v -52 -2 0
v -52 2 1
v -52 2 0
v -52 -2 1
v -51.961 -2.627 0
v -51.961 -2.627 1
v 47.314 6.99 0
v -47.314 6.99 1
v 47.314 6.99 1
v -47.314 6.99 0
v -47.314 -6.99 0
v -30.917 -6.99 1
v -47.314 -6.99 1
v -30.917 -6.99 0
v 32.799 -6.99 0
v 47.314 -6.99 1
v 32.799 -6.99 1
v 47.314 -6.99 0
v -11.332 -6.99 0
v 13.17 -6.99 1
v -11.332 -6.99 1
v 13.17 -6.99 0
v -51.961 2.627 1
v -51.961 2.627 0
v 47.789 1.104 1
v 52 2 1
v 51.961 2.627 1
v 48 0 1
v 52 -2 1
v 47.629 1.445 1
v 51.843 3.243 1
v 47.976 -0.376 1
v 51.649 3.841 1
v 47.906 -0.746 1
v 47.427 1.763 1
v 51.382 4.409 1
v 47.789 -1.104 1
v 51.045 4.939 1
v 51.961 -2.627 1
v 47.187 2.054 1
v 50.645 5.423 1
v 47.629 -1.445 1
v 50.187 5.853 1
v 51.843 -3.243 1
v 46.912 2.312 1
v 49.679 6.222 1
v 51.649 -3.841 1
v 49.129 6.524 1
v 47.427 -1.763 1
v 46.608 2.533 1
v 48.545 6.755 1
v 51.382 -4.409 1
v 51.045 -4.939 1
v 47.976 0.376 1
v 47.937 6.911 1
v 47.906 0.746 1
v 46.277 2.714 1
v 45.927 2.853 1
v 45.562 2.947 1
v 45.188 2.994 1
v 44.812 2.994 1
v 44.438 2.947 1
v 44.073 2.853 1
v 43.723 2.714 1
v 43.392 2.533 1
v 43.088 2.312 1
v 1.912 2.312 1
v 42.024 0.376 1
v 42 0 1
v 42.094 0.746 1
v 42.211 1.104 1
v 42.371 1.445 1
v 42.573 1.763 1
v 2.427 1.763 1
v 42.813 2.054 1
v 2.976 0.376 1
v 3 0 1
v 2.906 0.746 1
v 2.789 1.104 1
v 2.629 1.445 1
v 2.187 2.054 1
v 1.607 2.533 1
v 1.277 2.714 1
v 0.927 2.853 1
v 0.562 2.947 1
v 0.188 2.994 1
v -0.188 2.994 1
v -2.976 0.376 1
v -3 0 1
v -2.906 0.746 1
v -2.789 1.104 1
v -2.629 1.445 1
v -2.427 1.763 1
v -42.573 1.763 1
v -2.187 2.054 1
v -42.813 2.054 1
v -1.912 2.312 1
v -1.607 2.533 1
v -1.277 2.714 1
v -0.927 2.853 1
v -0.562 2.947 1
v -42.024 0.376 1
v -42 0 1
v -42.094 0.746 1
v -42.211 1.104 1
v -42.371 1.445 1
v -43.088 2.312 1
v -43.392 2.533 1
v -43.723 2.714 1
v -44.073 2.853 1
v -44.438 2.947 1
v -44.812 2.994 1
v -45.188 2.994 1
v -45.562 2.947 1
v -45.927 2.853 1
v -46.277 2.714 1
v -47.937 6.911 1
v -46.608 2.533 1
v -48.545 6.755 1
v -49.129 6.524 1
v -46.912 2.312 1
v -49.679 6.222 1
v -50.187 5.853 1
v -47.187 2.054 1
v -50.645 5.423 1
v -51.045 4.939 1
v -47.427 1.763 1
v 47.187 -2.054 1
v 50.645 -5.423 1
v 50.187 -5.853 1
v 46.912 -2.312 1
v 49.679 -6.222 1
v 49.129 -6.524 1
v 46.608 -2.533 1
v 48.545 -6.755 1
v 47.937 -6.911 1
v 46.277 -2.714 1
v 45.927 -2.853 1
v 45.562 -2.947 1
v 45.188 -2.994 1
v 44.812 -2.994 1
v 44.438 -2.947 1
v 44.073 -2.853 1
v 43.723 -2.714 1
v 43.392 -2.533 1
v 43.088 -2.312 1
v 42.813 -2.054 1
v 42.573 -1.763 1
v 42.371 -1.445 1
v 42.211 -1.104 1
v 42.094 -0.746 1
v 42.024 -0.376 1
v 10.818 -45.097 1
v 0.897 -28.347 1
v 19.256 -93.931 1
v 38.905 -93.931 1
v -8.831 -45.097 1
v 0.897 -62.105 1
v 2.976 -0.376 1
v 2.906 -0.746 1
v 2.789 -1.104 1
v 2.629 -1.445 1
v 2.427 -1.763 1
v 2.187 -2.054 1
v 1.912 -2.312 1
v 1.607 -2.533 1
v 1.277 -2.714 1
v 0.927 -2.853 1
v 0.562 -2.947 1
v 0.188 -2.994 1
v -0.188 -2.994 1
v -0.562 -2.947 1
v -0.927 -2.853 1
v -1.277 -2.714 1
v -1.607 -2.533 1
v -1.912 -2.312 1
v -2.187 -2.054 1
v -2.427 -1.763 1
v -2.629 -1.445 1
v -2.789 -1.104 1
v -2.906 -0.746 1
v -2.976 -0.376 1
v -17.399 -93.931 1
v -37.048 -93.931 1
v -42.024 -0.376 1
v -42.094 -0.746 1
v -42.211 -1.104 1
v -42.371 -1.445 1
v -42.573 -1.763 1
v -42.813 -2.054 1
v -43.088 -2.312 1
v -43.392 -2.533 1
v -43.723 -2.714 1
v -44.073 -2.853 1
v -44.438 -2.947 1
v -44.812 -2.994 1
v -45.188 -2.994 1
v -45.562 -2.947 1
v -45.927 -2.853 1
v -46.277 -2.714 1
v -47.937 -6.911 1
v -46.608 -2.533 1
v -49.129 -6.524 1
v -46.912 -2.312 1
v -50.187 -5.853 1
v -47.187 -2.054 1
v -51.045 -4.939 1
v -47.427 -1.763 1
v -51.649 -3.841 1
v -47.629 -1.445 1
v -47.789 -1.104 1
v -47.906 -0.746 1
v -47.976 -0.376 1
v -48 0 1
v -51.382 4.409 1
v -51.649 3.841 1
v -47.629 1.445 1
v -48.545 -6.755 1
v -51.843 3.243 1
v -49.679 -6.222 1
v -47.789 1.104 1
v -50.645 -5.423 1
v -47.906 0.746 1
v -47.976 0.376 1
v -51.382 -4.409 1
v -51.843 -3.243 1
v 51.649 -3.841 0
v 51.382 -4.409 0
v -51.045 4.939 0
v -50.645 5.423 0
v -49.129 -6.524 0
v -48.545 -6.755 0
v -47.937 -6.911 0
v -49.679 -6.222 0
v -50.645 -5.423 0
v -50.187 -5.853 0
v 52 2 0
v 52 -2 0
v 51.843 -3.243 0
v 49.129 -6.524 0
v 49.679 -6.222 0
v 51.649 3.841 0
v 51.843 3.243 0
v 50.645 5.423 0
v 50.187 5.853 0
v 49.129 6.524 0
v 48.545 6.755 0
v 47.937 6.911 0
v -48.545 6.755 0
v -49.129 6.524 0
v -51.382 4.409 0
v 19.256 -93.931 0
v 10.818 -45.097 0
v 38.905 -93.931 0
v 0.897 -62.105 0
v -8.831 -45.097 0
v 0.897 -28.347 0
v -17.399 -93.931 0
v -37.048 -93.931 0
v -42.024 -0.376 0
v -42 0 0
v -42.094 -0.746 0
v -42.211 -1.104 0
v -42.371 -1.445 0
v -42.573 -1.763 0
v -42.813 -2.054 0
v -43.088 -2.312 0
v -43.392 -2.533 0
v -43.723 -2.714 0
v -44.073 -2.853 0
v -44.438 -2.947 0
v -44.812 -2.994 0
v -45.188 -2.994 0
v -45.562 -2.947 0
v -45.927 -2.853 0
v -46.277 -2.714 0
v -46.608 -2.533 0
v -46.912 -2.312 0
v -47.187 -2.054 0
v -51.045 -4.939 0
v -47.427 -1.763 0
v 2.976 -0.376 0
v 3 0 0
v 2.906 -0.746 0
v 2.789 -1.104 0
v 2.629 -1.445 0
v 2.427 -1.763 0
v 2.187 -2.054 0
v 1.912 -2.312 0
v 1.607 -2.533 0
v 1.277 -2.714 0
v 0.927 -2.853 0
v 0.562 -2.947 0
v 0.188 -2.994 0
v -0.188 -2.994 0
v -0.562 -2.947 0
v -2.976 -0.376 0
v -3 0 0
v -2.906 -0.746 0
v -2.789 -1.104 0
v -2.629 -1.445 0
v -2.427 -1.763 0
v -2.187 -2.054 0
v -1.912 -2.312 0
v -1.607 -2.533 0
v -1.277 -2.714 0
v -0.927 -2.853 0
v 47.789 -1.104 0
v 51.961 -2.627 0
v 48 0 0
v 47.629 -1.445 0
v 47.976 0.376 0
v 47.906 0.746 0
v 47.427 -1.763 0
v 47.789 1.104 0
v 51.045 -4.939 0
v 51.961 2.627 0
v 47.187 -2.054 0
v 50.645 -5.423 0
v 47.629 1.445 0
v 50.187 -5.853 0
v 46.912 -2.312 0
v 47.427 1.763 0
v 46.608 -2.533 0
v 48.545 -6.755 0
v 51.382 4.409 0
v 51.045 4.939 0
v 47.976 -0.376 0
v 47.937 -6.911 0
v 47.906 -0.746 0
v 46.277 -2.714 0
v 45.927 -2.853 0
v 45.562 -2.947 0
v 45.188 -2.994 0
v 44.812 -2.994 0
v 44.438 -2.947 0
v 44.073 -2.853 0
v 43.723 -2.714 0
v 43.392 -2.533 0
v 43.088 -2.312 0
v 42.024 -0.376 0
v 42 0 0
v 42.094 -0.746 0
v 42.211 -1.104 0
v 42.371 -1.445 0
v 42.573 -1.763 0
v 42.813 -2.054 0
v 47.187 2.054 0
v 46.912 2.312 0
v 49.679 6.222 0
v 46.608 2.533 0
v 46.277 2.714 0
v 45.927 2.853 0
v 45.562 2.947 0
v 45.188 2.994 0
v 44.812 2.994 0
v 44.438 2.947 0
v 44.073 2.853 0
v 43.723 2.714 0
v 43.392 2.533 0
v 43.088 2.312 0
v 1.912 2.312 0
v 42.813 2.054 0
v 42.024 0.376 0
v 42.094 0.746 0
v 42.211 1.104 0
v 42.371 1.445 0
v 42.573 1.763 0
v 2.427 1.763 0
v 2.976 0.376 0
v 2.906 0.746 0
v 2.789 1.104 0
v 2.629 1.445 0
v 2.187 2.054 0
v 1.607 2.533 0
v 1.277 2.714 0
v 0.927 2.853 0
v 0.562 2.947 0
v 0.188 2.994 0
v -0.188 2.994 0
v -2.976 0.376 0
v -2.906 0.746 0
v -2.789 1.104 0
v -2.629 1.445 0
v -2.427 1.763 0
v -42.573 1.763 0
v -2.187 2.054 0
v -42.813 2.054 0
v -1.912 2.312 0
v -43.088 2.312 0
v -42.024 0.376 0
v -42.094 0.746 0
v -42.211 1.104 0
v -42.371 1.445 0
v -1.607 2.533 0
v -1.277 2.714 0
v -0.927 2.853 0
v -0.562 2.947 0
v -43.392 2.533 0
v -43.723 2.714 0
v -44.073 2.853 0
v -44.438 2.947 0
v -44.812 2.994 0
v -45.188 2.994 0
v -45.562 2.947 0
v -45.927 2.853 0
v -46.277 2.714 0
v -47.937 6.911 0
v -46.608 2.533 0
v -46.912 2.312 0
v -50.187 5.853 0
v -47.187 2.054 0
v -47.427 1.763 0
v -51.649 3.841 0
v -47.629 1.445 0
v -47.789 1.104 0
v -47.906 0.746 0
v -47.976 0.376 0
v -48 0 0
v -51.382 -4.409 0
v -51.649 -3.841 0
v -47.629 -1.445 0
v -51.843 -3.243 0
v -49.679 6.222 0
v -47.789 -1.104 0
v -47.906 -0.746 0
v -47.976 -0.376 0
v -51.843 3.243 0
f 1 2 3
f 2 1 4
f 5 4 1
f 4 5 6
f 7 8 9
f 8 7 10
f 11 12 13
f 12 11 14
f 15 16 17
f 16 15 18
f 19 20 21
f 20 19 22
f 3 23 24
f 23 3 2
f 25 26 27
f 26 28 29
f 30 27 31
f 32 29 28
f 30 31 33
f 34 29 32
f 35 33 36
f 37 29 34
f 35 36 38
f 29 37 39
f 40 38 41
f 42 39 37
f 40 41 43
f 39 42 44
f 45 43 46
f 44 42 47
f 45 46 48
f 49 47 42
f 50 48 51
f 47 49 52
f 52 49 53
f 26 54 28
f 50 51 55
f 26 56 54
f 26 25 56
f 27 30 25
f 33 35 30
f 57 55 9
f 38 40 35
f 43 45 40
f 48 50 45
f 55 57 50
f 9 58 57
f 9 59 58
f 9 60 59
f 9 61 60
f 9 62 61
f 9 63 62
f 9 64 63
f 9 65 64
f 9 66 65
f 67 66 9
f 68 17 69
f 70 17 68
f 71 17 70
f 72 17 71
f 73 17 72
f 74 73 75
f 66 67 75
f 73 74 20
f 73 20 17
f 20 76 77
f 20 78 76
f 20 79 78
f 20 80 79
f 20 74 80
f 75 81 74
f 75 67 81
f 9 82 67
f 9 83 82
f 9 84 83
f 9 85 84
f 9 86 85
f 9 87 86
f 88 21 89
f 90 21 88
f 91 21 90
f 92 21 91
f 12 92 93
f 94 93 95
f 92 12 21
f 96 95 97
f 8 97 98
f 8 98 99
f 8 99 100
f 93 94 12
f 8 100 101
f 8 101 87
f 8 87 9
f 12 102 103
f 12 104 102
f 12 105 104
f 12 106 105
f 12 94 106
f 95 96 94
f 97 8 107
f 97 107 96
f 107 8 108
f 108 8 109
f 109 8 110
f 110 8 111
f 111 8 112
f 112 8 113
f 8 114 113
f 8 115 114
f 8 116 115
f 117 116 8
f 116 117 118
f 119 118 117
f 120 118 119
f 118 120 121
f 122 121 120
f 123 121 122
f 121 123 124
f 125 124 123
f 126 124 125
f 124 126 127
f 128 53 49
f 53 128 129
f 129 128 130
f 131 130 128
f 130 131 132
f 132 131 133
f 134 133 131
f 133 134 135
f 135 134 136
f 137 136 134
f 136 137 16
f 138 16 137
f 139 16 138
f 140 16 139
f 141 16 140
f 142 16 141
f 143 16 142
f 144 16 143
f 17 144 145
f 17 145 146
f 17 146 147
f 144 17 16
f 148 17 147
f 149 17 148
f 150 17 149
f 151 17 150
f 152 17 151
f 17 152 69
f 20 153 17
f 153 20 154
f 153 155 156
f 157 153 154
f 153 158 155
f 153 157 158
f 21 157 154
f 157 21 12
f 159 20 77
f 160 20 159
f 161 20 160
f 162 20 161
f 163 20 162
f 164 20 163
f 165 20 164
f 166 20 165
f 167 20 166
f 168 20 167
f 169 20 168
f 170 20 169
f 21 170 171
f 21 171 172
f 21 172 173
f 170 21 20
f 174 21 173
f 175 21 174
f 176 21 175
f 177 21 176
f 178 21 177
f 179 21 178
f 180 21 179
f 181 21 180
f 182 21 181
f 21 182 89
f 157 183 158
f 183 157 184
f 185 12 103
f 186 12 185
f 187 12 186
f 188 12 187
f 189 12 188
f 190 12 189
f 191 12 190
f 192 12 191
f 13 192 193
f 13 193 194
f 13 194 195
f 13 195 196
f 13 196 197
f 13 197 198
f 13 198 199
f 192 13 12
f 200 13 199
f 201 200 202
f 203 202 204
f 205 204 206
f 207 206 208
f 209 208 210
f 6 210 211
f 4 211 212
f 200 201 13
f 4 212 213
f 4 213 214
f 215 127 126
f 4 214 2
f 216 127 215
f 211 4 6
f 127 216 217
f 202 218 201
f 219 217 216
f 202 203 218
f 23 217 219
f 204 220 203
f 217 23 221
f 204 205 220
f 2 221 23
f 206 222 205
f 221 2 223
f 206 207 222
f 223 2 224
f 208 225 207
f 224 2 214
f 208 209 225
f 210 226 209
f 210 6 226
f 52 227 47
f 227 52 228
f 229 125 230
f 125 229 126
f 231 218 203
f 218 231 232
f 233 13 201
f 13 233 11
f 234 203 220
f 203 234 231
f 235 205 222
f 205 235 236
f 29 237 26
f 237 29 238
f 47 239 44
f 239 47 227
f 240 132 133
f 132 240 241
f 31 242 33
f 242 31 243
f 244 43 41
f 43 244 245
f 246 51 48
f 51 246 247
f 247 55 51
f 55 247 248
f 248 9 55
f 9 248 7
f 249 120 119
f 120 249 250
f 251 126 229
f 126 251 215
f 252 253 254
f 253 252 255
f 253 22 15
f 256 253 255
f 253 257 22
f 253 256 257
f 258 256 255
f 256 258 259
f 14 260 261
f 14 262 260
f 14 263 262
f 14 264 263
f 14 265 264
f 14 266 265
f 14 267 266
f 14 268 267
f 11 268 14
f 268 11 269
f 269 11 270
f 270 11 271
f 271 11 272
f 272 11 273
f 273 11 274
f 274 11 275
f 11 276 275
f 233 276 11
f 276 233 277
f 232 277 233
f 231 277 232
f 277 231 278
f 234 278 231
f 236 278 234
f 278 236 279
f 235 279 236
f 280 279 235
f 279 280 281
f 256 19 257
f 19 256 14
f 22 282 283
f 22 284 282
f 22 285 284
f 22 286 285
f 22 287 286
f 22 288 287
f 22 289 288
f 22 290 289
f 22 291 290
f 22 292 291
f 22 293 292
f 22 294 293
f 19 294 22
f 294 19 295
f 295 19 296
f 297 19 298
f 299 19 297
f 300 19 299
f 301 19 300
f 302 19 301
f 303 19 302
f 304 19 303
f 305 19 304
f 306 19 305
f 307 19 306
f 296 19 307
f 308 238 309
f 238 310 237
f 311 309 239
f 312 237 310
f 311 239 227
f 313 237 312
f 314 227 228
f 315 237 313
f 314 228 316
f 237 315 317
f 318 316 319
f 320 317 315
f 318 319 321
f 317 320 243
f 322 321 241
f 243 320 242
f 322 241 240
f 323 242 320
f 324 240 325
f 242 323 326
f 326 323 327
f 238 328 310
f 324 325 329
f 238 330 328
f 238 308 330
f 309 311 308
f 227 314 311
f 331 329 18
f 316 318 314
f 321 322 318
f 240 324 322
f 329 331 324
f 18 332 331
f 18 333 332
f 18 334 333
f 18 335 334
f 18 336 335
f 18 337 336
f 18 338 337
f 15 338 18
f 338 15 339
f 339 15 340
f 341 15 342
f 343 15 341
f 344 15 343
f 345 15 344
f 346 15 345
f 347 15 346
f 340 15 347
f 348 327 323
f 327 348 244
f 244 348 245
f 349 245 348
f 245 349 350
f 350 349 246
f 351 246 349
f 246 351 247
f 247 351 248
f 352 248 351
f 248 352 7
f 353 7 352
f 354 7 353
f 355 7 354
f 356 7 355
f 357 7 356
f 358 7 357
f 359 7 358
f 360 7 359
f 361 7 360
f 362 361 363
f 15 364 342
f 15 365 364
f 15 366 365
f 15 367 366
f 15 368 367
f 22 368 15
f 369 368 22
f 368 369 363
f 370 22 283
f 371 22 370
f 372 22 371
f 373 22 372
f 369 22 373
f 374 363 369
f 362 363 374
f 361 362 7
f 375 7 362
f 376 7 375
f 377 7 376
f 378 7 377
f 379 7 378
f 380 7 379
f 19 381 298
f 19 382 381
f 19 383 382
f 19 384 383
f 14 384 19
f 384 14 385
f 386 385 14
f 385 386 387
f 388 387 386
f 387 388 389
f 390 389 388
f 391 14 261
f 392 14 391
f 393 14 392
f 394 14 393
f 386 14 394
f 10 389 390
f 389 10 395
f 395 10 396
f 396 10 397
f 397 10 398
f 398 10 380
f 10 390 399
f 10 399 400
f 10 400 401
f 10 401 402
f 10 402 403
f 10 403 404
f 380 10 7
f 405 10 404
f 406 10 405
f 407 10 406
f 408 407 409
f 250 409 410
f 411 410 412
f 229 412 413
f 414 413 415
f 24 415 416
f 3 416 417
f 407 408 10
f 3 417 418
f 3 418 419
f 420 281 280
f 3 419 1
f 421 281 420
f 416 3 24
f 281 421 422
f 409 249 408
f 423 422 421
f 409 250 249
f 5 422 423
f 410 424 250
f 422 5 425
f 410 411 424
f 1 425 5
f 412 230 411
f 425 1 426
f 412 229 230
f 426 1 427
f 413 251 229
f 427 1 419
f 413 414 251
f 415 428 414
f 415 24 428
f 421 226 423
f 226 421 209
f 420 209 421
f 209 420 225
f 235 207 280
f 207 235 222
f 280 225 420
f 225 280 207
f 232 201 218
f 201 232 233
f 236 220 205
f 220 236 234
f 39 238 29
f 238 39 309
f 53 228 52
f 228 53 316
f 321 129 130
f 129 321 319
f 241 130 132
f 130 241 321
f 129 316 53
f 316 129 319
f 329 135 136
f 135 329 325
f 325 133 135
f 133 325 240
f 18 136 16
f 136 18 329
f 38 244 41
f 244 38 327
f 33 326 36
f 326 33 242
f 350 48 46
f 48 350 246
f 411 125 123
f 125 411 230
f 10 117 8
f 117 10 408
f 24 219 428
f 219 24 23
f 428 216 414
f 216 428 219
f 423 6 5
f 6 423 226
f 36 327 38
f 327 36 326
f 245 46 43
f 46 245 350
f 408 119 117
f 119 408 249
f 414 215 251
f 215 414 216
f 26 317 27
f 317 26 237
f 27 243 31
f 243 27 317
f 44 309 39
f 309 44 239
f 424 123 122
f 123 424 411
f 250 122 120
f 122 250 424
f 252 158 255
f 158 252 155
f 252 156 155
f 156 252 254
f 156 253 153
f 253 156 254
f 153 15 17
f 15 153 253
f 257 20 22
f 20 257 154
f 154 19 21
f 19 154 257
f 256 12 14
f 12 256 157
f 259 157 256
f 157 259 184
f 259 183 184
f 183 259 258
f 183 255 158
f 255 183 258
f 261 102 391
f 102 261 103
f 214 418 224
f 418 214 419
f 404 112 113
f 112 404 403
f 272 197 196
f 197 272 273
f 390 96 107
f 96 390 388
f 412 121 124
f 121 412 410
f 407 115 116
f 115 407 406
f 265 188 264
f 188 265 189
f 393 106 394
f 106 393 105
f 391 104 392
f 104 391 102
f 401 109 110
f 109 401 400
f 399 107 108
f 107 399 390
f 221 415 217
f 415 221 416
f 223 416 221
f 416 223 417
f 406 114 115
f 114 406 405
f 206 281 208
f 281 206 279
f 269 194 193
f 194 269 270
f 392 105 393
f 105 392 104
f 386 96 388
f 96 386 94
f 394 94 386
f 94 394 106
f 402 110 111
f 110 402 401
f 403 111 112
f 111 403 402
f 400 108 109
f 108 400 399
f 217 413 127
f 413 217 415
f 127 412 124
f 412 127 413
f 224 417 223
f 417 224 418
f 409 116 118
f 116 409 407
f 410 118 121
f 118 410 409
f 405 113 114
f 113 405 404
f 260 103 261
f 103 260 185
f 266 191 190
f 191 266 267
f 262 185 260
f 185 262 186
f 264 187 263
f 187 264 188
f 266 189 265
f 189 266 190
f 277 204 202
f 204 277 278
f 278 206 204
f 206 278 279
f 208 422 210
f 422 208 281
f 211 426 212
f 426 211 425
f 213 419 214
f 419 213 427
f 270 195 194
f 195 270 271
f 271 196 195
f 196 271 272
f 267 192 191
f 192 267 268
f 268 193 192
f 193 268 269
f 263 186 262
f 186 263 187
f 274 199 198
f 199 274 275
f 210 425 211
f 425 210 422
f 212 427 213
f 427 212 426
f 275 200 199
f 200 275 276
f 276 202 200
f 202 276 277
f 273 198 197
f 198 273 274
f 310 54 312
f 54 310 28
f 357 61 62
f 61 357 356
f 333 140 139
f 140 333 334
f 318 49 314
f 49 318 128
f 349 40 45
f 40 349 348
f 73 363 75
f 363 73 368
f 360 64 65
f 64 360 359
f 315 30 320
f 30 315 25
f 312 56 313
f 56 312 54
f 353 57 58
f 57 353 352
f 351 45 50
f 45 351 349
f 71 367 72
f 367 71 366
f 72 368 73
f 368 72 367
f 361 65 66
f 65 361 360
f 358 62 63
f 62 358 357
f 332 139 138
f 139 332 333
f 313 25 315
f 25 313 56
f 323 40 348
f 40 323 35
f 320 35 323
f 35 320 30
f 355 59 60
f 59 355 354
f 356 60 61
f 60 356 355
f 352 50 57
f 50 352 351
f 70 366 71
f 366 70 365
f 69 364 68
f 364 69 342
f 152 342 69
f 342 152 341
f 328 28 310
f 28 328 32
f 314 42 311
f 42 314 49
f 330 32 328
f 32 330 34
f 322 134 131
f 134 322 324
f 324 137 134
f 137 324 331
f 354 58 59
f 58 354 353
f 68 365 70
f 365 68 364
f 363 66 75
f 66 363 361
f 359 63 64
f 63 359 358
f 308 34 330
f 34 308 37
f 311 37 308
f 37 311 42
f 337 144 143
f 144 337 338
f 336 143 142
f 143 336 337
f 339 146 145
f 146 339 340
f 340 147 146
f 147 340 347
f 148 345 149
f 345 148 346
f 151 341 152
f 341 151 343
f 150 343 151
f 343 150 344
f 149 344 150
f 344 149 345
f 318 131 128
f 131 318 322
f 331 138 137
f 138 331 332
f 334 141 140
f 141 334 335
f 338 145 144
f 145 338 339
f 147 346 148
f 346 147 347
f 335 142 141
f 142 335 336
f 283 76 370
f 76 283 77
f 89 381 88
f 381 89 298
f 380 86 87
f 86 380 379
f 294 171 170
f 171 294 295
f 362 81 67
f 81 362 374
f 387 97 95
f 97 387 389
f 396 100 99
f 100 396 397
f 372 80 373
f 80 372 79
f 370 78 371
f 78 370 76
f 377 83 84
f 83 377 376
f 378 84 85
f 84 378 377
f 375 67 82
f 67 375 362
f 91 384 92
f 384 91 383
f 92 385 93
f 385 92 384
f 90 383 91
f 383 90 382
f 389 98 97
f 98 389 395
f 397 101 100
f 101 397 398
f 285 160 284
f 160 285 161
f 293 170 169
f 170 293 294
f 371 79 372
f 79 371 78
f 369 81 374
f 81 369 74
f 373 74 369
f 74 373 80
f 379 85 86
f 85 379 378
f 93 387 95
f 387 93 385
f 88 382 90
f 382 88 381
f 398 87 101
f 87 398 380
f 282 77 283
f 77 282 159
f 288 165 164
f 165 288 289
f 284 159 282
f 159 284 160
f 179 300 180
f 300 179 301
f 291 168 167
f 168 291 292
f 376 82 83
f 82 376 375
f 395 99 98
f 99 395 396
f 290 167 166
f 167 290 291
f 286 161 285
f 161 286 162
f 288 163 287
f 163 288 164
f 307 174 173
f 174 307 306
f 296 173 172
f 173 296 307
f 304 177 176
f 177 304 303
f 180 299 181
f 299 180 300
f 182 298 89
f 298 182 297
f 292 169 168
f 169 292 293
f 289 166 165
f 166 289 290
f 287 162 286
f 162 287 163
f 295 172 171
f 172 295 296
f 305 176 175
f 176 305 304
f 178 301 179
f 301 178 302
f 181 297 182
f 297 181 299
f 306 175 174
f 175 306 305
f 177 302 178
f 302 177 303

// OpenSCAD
$fn = 50;


difference() {
	union() {
		translate(v = [0, 0, 0]) {
			rotate(a = [0, 0, 0]) {
				hull() {
					translate(v = [-47.0000000000, 2.0000000000, 0]) {
						rotate(a = [0, 0, 0]) {
							translate(v = [0, 0, 0]) {
								rotate(a = [0, 0, 0]) {
									cylinder(h = 1, r = 5);
								}
							}
						}
					}
					translate(v = [47.0000000000, 2.0000000000, 0]) {
						rotate(a = [0, 0, 0]) {
							translate(v = [0, 0, 0]) {
								rotate(a = [0, 0, 0]) {
									cylinder(h = 1, r = 5);
								}
							}
						}
					}
					translate(v = [-47.0000000000, -2.0000000000, 0]) {
						rotate(a = [0, 0, 0]) {
							translate(v = [0, 0, 0]) {
								rotate(a = [0, 0, 0]) {
									cylinder(h = 1, r = 5);
								}
							}
						}
					}
					translate(v = [47.0000000000, -2.0000000000, 0]) {
						rotate(a = [0, 0, 0]) {
							translate(v = [0, 0, 0]) {
								rotate(a = [0, 0, 0]) {
									cylinder(h = 1, r = 5);
								}
							}
						}
					}
				}
			}
		}
		translate(v = [0, 0, 0]) {
			rotate(a = [0, 0, 0]) {
				linear_extrude(height = 1) {
					text(font = "DejaVu Sans Mono:style=Bold", halign = "center", size = 95.0000000000, text = "X", valign = "top");
				}
			}
		}
	}
	union() {
		translate(v = [-45.0000000000, 0.0000000000, -125.0000000000]) {
			rotate(a = [0, 0, 0]) {
				cylinder(h = 250, r = 3.0000000000);
			}
		}
		translate(v = [45.0000000000, 0.0000000000, -125.0000000000]) {
			rotate(a = [0, 0, 0]) {
				cylinder(h = 250, r = 3.0000000000);
			}
		}
		translate(v = [45.0000000000, 0.0000000000, -125.0000000000]) {
			rotate(a = [0, 0, 0]) {
				cylinder(h = 250, r = 3.0000000000);
			}
		}
		translate(v = [0, 0, -125.0000000000]) {
			rotate(a = [0, 0, 0]) {
				cylinder(h = 250, r = 3.0000000000);
			}
		}
	}
}
